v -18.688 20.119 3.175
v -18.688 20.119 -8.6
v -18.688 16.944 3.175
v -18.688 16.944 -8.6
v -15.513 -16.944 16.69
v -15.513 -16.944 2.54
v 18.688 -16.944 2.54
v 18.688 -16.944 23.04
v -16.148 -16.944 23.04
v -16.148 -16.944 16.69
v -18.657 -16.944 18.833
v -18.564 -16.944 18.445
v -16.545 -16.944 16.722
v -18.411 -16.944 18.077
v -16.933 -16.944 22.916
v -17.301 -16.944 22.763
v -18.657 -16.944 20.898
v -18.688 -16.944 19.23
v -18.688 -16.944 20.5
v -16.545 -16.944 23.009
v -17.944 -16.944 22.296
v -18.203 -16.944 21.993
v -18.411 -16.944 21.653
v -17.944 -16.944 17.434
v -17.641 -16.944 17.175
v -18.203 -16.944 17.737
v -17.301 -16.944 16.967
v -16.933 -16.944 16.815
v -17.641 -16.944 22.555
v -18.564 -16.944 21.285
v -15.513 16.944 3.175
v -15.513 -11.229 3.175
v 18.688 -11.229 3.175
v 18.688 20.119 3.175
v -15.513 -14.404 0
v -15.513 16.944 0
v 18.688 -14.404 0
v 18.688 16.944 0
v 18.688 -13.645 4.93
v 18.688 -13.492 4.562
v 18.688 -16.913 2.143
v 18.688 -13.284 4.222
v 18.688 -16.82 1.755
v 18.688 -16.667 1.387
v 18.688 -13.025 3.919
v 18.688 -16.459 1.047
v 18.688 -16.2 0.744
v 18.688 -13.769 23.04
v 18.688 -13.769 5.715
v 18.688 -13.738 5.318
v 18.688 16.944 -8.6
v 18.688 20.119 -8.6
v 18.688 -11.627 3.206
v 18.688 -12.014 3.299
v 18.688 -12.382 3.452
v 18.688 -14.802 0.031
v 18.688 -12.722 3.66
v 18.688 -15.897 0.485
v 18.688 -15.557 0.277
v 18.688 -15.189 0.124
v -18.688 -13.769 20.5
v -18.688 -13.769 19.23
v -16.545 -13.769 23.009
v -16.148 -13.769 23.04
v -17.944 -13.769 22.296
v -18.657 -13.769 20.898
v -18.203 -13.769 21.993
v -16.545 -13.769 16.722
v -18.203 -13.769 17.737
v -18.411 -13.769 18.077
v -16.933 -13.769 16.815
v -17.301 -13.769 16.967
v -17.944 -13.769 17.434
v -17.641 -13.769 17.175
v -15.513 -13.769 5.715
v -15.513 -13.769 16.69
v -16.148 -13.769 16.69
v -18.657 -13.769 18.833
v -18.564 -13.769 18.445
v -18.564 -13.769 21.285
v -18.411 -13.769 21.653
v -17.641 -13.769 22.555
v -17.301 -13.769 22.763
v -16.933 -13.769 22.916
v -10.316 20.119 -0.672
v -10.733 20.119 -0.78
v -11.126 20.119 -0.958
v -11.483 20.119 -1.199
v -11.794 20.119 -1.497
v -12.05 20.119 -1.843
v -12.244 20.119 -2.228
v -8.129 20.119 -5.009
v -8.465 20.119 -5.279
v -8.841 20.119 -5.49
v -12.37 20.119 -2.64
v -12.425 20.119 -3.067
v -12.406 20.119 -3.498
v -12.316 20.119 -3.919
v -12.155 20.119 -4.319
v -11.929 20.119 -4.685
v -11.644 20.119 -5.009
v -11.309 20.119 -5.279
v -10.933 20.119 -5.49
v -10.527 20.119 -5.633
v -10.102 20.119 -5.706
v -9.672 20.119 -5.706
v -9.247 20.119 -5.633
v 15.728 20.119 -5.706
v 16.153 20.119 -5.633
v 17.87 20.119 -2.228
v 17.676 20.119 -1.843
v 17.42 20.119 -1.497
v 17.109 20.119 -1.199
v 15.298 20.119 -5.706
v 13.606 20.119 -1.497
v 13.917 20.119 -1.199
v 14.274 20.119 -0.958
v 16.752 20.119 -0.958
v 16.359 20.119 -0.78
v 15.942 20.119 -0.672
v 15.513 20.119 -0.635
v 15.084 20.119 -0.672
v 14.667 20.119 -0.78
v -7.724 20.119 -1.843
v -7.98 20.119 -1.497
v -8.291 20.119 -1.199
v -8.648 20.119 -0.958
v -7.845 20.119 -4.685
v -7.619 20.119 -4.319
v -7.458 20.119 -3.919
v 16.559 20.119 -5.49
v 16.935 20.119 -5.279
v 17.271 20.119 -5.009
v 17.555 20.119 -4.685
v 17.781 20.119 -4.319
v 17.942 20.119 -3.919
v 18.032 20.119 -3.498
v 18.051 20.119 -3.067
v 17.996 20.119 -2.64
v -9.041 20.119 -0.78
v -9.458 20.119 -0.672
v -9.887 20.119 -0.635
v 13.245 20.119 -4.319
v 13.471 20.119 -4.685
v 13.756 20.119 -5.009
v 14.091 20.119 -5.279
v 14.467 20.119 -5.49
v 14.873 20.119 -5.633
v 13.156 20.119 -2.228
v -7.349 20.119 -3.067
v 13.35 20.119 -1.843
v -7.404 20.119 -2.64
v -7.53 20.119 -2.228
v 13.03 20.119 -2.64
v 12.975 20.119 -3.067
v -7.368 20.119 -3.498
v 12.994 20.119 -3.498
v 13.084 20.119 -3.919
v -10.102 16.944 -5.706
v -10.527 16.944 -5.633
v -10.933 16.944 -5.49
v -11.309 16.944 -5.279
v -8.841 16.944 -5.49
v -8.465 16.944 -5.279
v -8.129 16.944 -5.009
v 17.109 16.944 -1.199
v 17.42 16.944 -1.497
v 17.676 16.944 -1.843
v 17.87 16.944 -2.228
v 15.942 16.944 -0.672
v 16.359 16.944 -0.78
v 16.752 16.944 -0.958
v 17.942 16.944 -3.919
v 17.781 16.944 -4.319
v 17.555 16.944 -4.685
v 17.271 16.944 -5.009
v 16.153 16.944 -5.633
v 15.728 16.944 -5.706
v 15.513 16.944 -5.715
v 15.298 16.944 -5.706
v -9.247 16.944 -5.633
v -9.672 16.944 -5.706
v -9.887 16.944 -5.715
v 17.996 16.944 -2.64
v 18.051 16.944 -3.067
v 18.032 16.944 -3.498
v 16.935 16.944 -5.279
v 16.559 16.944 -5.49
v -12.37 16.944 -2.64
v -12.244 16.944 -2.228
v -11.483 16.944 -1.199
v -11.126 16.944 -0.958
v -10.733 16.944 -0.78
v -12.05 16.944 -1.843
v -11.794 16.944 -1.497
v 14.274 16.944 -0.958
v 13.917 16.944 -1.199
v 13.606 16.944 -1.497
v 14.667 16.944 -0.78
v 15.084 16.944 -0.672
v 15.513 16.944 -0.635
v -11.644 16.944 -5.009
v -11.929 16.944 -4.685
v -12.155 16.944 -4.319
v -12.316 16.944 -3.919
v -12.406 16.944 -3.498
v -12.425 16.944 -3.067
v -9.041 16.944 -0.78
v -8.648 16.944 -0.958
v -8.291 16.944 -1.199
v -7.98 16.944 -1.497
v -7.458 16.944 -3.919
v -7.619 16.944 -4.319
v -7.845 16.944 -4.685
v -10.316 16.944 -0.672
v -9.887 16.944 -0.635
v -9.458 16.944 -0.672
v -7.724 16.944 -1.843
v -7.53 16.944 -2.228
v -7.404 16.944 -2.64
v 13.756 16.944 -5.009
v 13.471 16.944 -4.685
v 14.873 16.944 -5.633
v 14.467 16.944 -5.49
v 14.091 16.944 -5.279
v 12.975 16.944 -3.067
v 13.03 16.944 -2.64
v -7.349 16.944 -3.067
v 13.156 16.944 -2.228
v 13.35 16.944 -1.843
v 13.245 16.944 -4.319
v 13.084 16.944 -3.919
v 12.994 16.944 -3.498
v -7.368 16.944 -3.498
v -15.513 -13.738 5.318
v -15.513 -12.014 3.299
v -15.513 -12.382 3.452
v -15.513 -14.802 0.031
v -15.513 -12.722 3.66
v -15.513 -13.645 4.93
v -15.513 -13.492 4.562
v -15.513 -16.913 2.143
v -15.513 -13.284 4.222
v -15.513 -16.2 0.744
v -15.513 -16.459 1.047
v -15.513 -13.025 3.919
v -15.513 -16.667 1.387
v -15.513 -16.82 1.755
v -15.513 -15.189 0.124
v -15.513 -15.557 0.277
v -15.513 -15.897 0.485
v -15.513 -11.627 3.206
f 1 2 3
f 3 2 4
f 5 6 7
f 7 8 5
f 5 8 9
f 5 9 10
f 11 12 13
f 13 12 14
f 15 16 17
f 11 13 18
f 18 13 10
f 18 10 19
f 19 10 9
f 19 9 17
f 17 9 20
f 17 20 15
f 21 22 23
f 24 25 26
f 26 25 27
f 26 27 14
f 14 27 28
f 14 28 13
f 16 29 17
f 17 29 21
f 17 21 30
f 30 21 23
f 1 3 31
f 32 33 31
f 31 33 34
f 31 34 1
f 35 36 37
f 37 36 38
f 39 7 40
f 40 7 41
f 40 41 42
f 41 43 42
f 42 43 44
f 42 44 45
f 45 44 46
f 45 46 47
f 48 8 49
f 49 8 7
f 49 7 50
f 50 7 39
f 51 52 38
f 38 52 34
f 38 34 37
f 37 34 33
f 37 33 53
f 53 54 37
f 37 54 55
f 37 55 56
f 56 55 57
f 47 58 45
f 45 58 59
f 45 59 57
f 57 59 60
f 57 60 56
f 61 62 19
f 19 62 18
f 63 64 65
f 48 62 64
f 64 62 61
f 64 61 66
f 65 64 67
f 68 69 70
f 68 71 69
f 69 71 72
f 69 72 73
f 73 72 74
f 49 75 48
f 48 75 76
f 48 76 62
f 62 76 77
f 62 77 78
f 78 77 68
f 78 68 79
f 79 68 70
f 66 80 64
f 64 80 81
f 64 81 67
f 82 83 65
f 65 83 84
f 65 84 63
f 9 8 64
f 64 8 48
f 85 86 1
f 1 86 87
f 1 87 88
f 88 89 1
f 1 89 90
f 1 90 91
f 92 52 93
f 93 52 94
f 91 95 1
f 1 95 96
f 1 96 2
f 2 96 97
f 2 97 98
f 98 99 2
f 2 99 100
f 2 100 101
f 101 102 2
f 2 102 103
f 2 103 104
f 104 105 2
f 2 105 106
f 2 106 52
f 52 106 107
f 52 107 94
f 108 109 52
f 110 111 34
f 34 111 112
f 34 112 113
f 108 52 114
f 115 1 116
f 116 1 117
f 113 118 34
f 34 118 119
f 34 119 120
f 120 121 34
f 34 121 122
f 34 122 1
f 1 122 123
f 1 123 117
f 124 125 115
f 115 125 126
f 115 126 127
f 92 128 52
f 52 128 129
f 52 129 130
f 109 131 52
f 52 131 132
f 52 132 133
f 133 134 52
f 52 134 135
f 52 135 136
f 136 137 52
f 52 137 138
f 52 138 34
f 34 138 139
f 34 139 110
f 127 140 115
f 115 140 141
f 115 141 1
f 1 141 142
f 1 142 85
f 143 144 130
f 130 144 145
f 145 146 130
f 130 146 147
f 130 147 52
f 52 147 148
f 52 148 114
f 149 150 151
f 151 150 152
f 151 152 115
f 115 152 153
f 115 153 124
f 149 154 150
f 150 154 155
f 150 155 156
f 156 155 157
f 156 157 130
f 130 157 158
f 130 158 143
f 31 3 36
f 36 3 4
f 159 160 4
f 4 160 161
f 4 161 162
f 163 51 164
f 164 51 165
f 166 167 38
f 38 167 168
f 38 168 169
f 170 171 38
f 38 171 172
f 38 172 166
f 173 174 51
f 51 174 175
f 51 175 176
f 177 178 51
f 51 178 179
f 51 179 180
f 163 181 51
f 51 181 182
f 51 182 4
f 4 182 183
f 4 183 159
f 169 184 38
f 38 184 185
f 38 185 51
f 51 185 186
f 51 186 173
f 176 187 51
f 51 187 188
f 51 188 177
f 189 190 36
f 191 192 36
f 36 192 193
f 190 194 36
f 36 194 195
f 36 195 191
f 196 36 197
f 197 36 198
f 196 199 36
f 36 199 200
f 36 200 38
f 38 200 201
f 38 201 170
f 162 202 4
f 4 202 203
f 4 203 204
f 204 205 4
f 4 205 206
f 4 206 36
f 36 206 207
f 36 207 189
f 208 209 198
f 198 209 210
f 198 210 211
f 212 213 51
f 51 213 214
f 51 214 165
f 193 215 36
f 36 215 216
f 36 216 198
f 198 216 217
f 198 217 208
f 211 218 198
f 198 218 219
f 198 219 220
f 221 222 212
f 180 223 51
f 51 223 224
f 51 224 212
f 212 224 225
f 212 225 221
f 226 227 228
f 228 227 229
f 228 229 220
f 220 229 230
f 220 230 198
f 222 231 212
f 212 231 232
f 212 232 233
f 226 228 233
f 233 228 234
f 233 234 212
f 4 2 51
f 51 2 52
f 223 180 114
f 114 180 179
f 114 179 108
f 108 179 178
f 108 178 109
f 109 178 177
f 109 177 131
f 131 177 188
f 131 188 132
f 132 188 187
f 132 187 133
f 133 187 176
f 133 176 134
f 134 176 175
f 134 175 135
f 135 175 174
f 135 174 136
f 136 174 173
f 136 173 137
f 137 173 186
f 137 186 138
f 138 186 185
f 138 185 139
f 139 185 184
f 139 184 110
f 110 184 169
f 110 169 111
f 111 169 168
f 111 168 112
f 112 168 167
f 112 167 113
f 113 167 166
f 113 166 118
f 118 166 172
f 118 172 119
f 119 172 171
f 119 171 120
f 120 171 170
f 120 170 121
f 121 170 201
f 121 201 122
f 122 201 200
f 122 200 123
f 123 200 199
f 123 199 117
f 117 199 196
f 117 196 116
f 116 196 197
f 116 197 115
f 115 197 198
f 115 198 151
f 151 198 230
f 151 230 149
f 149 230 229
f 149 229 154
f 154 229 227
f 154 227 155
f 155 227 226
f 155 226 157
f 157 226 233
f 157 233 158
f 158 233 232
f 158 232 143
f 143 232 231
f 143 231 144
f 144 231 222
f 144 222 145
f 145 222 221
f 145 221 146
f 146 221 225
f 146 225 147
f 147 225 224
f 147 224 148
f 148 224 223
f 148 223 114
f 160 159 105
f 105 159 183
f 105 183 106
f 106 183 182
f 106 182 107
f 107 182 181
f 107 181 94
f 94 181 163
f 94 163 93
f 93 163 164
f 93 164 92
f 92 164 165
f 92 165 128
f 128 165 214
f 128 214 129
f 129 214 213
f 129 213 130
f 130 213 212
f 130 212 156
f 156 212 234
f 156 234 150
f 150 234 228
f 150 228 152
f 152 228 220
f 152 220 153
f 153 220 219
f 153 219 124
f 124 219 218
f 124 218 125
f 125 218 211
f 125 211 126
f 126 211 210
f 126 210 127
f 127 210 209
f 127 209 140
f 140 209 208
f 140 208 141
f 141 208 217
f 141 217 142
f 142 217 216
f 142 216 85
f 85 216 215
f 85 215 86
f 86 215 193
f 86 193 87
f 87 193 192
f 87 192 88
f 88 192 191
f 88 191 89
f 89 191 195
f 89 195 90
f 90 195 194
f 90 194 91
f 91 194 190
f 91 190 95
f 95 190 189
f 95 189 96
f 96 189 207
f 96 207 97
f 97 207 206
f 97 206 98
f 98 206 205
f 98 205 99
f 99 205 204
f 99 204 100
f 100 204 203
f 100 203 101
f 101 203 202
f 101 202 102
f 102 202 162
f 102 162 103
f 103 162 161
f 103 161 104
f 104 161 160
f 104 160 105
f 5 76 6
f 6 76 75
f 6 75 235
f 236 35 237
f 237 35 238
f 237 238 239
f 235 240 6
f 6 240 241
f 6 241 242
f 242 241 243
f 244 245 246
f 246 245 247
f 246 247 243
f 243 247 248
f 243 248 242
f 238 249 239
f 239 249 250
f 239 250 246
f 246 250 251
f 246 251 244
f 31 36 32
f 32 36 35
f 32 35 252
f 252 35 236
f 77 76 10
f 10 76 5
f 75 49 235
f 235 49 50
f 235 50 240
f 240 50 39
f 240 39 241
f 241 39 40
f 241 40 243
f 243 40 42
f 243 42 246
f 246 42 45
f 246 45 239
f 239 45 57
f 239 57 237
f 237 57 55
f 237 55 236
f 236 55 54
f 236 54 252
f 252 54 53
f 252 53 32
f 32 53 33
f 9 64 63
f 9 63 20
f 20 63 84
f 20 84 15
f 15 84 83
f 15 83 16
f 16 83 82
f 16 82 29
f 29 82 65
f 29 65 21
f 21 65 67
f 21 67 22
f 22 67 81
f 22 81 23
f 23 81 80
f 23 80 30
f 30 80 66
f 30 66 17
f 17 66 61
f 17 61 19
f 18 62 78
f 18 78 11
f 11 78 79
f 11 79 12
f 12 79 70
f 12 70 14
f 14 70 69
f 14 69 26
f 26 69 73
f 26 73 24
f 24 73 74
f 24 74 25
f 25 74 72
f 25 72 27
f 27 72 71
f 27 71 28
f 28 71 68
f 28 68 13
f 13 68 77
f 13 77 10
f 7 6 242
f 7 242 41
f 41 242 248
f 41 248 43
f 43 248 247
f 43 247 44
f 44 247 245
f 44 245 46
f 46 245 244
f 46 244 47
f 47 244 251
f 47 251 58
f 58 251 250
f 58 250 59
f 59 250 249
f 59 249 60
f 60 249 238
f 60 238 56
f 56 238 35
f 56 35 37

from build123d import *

# Parameters (mm, degrees)
SKETCH1_W           = 37.3761
SKETCH1_H           = 33.88868
BOSS_EXTRUDE1_DEPTH = 3.175
SKETCH2_W           = 37.3761
SKETCH2_H           = 3.175
BOSS_EXTRUDE2_DEPTH = 23.04034
BOSS_EXTRUDE3_START = -3.175
SKETCH3_W           = 37.3761
SKETCH3_H           = 3.175
BOSS_EXTRUDE3_DEPTH = 11.77544
SKETCH4_R           = 2.54
CUT_EXTRUDE1_DEPTH  = 48.474381041
SKETCH5_W           = 3.175
SKETCH5_H           = 13.51534
CUT_EXTRUDE2_DEPTH  = 46.039350709
SKETCH6_W           = 3.175
SKETCH6_H           = 33.88868
CUT_EXTRUDE3_DEPTH  = 46.884205894
FILLET1_R           = 2.54
FILLET2_R           = 2.54


with BuildPart() as part:
    # Sketch1 → Boss-Extrude1 (new body)
    with BuildSketch(Plane.XY):
        Rectangle(SKETCH1_W, SKETCH1_H)
    extrude(amount=BOSS_EXTRUDE1_DEPTH)

    # Sketch2 → Boss-Extrude2 (add)
    with BuildSketch(Plane(origin=(0, 0, 0), x_dir=(-1, 0, 0), z_dir=(0, 0, -1))):
        with Locations((0, -15.35684)):
            Rectangle(SKETCH2_W, SKETCH2_H)
    extrude(amount=-BOSS_EXTRUDE2_DEPTH)

    # Sketch3 → Boss-Extrude3 (add)
    with BuildSketch(Plane(origin=(0, 0, 0), x_dir=(-1, 0, 0), z_dir=(0, 0, -1)).offset(BOSS_EXTRUDE3_START)):
        with Locations((0, 18.53184)):
            Rectangle(SKETCH3_W, SKETCH3_H)
    extrude(amount=BOSS_EXTRUDE3_DEPTH)

    # Sketch4 → Cut-Extrude1 (cut, through all)
    with BuildSketch(Plane(origin=(0, 20.11934, 0), x_dir=(1, 0, 0), z_dir=(0, 1, 0))):
        with Locations(Location((-9.88695, 3.175, 0), (0, 0, 270))):
            Circle(SKETCH4_R)
        with Locations(Location((15.51305, 3.175, 0), (0, 0, 270))):
            Circle(SKETCH4_R)
    extrude(amount=-CUT_EXTRUDE1_DEPTH, mode=Mode.SUBTRACT)

    # Sketch5 → Cut-Extrude2 (cut, through all)
    with BuildSketch(Plane(origin=(0, -13.76934, 0), x_dir=(1, 0, 0), z_dir=(0, 1, 0))):
        with Locations((-17.10055, -9.93267)):
            Rectangle(SKETCH5_W, SKETCH5_H)
    extrude(amount=-CUT_EXTRUDE2_DEPTH, mode=Mode.SUBTRACT)

    # Sketch6 → Cut-Extrude3 (cut, through all)
    with BuildSketch(Plane.ZY.offset(15.51305)):
        with Locations((1.5875, 0)):
            Rectangle(SKETCH6_W, SKETCH6_H)
    extrude(amount=CUT_EXTRUDE3_DEPTH, mode=Mode.SUBTRACT)

    # Fillet1
    fillet1_edges = [part.edges().sort_by_distance(p)[0] for p in [
        (-18.68805, -15.35684, 23.04034),
        (1.5875, -13.76934, 3.175),
        (-18.68805, -15.35684, 16.69034),
    ]]
    fillet(fillet1_edges, radius=FILLET1_R)

    # Fillet2
    fillet2_edges = [part.edges().sort_by_distance(p)[0] for p in [
        (1.5875, -16.94434, 0),
    ]]
    fillet(fillet2_edges, radius=FILLET2_R)


solid = part.part
